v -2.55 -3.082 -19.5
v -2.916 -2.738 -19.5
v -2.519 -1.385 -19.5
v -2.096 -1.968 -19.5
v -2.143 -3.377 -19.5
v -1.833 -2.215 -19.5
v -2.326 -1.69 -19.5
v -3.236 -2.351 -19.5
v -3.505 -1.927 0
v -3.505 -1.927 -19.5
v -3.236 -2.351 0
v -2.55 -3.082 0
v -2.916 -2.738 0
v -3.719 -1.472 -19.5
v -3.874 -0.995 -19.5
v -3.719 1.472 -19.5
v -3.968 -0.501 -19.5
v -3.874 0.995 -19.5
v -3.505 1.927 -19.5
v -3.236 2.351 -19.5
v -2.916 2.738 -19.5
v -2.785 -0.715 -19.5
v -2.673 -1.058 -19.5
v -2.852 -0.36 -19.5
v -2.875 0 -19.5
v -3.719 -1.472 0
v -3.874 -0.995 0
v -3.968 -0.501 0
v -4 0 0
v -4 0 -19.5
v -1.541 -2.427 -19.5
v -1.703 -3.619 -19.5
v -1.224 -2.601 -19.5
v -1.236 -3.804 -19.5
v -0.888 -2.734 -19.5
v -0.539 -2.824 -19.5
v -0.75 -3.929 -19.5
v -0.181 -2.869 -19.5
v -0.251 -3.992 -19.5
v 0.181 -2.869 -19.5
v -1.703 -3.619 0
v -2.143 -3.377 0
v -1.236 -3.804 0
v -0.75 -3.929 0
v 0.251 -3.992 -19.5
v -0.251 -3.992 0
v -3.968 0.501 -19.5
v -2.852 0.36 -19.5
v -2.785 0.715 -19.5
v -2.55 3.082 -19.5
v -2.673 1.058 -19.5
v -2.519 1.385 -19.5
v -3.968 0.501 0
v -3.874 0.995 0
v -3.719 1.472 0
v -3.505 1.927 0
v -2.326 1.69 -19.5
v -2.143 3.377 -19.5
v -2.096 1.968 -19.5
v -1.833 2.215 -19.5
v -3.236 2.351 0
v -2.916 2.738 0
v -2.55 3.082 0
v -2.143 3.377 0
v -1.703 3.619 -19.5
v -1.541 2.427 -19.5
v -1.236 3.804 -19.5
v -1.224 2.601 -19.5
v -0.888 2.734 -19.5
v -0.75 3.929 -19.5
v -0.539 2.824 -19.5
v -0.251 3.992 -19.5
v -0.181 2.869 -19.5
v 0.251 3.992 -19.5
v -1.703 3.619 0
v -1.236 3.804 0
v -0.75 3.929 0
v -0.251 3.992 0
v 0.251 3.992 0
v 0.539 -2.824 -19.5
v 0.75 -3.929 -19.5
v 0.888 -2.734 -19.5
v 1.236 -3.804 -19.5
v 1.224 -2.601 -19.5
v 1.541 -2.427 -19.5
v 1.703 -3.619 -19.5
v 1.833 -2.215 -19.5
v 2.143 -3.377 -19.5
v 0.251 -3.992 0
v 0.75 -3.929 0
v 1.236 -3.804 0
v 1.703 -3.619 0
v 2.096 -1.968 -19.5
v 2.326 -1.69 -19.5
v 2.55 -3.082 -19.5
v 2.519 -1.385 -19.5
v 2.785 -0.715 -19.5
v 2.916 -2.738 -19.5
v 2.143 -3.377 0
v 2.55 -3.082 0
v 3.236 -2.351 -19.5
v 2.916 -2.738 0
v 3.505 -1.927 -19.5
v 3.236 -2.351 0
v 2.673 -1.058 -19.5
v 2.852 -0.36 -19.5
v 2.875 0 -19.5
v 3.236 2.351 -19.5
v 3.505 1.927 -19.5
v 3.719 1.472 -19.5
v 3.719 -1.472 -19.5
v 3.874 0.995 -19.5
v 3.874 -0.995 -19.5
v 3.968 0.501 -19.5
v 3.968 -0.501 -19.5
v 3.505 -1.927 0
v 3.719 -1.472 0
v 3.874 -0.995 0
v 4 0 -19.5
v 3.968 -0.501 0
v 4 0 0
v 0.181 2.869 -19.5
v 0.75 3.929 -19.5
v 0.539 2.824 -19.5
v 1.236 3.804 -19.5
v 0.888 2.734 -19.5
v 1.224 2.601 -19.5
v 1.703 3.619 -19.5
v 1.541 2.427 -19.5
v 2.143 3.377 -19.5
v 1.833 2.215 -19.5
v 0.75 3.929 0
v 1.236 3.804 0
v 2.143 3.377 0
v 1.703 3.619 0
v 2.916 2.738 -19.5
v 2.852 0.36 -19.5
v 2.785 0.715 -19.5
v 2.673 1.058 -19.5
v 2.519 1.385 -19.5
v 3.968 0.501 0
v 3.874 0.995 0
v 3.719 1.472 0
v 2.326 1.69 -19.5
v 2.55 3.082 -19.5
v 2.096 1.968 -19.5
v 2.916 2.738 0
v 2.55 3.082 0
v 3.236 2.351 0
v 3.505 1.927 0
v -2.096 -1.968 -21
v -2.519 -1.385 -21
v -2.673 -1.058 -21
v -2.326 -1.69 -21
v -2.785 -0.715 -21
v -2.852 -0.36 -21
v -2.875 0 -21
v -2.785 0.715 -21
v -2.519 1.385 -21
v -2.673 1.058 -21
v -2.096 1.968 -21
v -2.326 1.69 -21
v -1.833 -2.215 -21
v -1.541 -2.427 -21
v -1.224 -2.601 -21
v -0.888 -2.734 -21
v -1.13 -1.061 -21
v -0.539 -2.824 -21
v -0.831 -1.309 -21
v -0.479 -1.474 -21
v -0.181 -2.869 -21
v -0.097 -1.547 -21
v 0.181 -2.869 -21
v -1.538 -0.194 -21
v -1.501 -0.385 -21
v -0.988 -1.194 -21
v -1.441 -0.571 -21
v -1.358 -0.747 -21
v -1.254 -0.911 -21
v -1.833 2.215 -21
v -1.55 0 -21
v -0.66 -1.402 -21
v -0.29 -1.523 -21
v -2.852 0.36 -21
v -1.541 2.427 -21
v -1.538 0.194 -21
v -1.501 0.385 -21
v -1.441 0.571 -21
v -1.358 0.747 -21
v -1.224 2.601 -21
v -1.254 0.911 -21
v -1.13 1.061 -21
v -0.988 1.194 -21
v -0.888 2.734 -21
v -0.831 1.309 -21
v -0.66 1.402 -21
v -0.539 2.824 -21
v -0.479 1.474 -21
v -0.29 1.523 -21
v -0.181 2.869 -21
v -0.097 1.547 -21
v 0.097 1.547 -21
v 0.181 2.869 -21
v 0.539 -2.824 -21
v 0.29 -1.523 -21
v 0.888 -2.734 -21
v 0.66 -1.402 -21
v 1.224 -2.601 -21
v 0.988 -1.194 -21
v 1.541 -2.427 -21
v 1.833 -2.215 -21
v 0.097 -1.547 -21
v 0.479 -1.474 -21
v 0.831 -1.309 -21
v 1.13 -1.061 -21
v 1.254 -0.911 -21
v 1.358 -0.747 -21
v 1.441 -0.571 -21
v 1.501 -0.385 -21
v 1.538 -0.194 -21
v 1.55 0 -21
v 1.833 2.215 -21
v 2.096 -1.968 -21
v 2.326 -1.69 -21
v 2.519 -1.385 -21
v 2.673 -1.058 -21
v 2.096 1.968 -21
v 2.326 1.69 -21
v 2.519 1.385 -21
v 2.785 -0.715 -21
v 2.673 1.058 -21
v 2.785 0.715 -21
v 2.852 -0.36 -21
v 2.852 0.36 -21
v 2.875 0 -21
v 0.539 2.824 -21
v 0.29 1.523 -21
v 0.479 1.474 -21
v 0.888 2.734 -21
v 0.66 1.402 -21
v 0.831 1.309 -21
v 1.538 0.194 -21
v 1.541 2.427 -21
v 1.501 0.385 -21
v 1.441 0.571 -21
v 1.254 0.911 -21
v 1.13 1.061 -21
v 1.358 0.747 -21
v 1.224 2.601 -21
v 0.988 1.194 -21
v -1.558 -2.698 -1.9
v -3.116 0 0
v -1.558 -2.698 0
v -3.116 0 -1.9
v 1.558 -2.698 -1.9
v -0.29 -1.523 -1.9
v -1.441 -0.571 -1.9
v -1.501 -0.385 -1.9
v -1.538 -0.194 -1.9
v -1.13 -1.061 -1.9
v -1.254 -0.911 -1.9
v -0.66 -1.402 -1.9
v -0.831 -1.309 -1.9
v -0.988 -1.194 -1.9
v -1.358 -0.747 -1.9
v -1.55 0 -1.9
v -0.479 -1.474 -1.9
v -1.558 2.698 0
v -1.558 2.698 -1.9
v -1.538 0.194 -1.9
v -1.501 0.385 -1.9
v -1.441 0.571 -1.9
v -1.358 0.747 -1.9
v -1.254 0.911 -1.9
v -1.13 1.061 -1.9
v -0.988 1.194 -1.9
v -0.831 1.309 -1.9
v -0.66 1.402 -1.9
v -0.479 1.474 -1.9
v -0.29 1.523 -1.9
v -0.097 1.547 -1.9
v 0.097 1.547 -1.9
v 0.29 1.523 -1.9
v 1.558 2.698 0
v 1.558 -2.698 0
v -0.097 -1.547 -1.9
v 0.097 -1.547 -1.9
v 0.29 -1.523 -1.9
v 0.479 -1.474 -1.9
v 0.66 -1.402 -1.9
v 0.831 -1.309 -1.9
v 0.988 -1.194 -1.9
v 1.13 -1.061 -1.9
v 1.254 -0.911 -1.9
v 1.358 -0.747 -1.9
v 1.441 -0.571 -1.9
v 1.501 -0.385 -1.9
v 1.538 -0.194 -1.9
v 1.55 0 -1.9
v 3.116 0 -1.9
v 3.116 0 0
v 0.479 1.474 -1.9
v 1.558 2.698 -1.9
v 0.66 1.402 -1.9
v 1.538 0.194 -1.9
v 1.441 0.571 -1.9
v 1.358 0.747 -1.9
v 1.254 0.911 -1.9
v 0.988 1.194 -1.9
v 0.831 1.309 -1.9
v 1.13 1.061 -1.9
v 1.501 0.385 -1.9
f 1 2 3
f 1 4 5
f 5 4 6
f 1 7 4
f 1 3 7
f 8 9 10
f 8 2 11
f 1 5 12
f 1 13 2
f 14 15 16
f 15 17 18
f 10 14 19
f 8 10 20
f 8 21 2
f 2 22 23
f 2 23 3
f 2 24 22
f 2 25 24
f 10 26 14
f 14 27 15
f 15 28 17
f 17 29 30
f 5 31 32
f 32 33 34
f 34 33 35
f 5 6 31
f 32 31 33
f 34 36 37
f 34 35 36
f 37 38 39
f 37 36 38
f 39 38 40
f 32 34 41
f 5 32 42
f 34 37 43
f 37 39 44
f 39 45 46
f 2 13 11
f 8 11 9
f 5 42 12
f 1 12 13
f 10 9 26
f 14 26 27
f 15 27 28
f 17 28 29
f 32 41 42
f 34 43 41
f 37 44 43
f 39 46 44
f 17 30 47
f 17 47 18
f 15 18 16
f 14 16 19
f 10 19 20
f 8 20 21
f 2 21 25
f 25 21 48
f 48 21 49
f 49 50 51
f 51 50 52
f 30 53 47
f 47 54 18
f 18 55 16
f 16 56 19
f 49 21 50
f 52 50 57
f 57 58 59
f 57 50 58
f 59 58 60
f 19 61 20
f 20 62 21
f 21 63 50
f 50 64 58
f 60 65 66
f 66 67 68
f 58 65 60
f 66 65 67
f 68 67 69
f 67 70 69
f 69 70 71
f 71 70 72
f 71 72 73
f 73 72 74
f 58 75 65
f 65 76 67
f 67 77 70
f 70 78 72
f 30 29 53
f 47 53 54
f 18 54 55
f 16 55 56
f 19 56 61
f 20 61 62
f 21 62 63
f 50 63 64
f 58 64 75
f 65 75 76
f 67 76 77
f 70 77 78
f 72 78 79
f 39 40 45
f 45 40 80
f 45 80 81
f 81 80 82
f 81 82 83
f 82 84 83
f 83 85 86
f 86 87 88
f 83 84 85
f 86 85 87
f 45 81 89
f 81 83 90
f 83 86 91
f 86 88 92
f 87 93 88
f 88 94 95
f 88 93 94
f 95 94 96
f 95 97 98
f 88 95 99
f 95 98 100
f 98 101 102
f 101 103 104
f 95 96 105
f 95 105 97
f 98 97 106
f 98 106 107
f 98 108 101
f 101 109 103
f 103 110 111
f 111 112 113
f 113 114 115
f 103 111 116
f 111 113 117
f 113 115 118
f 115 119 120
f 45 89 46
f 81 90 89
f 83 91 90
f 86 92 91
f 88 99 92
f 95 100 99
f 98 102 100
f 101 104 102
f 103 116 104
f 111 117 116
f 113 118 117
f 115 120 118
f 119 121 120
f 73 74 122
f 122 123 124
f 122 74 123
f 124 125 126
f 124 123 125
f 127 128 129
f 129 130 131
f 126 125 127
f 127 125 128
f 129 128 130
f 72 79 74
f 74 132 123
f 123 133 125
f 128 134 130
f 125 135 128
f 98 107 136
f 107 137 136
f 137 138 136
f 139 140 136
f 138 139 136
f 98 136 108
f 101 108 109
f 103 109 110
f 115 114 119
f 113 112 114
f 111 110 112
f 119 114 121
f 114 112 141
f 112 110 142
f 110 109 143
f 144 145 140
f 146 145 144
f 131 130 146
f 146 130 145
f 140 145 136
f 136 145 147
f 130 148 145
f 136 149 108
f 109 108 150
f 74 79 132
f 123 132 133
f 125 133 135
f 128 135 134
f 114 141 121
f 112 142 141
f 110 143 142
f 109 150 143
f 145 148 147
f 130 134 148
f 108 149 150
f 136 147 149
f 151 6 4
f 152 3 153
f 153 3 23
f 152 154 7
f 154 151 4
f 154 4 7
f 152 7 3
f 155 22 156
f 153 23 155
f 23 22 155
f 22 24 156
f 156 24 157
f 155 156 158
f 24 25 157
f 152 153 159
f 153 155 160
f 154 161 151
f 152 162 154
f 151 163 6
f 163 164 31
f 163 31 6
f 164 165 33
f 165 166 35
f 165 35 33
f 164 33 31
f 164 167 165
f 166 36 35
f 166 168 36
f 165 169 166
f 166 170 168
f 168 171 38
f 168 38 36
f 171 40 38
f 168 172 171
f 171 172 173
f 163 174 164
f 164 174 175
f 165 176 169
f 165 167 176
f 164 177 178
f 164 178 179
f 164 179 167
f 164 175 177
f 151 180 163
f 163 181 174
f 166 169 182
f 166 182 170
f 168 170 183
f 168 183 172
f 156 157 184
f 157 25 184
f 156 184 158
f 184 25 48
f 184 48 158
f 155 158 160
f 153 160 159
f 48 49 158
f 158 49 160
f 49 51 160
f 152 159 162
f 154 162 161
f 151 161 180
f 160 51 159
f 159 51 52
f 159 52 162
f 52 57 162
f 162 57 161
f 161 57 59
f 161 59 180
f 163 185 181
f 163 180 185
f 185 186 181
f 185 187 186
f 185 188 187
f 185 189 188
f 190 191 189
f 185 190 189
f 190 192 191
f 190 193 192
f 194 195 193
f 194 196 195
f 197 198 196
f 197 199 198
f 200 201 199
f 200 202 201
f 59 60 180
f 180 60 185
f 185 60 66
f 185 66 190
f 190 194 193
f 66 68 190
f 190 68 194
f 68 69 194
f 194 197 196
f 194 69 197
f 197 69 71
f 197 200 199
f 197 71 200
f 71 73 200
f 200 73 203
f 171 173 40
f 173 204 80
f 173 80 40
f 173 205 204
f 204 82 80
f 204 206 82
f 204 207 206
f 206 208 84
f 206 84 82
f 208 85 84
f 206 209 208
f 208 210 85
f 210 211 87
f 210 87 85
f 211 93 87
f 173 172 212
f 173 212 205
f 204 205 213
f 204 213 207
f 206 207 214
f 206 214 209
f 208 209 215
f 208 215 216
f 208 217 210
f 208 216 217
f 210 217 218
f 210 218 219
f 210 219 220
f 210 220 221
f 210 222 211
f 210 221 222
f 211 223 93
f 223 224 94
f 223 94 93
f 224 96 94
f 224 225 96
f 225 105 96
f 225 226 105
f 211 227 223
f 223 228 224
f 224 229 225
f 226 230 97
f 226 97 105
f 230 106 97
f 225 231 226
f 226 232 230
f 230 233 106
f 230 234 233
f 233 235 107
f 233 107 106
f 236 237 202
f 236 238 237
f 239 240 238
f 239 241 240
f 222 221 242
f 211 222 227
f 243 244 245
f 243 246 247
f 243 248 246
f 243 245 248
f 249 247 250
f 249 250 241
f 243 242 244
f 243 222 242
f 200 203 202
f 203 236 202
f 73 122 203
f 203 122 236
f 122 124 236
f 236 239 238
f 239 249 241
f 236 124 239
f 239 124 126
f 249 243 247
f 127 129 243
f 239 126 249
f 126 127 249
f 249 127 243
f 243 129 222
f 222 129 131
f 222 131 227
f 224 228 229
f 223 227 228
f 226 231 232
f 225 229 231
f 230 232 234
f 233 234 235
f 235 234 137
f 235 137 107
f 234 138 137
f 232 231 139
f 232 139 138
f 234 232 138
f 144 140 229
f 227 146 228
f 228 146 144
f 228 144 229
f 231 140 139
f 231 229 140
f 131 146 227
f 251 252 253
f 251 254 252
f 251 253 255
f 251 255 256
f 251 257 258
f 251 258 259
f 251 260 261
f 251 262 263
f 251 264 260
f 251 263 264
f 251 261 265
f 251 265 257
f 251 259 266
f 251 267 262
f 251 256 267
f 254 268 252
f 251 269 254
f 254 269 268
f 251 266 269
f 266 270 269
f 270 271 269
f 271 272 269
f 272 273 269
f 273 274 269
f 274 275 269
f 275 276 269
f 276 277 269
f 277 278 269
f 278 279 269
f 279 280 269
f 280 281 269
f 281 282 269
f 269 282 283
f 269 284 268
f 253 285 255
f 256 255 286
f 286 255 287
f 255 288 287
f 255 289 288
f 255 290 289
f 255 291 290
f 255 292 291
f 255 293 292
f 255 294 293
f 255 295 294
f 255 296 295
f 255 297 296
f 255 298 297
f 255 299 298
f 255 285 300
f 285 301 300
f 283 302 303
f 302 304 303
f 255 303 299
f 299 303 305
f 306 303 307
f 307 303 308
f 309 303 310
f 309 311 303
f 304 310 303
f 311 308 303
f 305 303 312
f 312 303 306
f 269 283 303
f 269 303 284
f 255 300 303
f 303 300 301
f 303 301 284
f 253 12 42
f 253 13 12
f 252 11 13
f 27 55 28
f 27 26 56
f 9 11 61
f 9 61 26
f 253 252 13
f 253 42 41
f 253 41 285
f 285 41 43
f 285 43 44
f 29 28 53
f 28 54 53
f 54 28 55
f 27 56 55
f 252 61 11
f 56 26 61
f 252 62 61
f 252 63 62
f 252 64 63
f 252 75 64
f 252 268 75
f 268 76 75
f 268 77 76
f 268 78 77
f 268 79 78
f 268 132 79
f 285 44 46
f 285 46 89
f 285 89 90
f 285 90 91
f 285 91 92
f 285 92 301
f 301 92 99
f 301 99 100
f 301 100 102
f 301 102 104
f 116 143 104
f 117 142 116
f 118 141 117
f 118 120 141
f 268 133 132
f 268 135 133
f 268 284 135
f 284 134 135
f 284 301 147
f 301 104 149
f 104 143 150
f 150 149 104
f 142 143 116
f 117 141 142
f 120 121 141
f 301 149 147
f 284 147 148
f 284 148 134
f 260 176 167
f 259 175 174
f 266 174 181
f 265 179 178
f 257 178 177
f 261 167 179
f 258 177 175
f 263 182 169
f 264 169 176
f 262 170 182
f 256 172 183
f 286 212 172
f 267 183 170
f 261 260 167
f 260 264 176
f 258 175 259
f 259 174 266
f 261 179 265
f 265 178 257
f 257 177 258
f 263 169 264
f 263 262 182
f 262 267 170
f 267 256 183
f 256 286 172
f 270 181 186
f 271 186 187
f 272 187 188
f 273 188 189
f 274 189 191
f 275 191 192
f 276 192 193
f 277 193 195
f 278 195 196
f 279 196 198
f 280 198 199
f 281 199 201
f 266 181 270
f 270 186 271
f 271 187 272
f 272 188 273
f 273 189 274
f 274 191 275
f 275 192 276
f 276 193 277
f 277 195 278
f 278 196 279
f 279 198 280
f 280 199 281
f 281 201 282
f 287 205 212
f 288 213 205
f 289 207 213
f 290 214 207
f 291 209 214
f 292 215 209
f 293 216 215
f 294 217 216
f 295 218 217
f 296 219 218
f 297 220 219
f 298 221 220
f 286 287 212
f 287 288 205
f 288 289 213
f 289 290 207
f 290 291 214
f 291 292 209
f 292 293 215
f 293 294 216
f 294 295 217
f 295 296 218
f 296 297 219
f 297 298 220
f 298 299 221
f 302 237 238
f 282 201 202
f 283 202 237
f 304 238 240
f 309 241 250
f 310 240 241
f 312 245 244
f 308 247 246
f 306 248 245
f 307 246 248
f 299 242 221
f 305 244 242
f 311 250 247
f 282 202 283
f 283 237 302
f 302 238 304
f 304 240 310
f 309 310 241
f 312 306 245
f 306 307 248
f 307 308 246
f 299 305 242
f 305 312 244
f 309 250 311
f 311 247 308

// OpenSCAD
$fn = 50;

difference() {
	union() {
		translate(v = [0, 0, -19.5]) {
			cylinder(h = 19.5, r = 4.0);
		}
		#translate(v = [0, 0, -21.0]) {
			cylinder(h = 21, r = 2.875);
		}
	}
	union() {
		translate(v = [0, 0, 0]) {
			rotate(a = [0, 0, 0]) {
				difference() {
					union() {
						translate(v = [0, 0, -1.9]) {
							linear_extrude(height = 1.9) {
								polygon(points = [[3.1158, 0.0], [1.5579000000000005, 2.698361953111554], [-1.5578999999999994, 2.6983619531115544], [-3.1158, 3.815754496783323e-16], [-1.5579000000000014, -2.6983619531115535], [1.557899999999998, -2.6983619531115552]]);
							}
						}
					}
					union();
				}
			}
		}
		#translate(v = [0, 0, -100.0]) {
			cylinder(h = 200, r = 1.55);
		}
	}
}
